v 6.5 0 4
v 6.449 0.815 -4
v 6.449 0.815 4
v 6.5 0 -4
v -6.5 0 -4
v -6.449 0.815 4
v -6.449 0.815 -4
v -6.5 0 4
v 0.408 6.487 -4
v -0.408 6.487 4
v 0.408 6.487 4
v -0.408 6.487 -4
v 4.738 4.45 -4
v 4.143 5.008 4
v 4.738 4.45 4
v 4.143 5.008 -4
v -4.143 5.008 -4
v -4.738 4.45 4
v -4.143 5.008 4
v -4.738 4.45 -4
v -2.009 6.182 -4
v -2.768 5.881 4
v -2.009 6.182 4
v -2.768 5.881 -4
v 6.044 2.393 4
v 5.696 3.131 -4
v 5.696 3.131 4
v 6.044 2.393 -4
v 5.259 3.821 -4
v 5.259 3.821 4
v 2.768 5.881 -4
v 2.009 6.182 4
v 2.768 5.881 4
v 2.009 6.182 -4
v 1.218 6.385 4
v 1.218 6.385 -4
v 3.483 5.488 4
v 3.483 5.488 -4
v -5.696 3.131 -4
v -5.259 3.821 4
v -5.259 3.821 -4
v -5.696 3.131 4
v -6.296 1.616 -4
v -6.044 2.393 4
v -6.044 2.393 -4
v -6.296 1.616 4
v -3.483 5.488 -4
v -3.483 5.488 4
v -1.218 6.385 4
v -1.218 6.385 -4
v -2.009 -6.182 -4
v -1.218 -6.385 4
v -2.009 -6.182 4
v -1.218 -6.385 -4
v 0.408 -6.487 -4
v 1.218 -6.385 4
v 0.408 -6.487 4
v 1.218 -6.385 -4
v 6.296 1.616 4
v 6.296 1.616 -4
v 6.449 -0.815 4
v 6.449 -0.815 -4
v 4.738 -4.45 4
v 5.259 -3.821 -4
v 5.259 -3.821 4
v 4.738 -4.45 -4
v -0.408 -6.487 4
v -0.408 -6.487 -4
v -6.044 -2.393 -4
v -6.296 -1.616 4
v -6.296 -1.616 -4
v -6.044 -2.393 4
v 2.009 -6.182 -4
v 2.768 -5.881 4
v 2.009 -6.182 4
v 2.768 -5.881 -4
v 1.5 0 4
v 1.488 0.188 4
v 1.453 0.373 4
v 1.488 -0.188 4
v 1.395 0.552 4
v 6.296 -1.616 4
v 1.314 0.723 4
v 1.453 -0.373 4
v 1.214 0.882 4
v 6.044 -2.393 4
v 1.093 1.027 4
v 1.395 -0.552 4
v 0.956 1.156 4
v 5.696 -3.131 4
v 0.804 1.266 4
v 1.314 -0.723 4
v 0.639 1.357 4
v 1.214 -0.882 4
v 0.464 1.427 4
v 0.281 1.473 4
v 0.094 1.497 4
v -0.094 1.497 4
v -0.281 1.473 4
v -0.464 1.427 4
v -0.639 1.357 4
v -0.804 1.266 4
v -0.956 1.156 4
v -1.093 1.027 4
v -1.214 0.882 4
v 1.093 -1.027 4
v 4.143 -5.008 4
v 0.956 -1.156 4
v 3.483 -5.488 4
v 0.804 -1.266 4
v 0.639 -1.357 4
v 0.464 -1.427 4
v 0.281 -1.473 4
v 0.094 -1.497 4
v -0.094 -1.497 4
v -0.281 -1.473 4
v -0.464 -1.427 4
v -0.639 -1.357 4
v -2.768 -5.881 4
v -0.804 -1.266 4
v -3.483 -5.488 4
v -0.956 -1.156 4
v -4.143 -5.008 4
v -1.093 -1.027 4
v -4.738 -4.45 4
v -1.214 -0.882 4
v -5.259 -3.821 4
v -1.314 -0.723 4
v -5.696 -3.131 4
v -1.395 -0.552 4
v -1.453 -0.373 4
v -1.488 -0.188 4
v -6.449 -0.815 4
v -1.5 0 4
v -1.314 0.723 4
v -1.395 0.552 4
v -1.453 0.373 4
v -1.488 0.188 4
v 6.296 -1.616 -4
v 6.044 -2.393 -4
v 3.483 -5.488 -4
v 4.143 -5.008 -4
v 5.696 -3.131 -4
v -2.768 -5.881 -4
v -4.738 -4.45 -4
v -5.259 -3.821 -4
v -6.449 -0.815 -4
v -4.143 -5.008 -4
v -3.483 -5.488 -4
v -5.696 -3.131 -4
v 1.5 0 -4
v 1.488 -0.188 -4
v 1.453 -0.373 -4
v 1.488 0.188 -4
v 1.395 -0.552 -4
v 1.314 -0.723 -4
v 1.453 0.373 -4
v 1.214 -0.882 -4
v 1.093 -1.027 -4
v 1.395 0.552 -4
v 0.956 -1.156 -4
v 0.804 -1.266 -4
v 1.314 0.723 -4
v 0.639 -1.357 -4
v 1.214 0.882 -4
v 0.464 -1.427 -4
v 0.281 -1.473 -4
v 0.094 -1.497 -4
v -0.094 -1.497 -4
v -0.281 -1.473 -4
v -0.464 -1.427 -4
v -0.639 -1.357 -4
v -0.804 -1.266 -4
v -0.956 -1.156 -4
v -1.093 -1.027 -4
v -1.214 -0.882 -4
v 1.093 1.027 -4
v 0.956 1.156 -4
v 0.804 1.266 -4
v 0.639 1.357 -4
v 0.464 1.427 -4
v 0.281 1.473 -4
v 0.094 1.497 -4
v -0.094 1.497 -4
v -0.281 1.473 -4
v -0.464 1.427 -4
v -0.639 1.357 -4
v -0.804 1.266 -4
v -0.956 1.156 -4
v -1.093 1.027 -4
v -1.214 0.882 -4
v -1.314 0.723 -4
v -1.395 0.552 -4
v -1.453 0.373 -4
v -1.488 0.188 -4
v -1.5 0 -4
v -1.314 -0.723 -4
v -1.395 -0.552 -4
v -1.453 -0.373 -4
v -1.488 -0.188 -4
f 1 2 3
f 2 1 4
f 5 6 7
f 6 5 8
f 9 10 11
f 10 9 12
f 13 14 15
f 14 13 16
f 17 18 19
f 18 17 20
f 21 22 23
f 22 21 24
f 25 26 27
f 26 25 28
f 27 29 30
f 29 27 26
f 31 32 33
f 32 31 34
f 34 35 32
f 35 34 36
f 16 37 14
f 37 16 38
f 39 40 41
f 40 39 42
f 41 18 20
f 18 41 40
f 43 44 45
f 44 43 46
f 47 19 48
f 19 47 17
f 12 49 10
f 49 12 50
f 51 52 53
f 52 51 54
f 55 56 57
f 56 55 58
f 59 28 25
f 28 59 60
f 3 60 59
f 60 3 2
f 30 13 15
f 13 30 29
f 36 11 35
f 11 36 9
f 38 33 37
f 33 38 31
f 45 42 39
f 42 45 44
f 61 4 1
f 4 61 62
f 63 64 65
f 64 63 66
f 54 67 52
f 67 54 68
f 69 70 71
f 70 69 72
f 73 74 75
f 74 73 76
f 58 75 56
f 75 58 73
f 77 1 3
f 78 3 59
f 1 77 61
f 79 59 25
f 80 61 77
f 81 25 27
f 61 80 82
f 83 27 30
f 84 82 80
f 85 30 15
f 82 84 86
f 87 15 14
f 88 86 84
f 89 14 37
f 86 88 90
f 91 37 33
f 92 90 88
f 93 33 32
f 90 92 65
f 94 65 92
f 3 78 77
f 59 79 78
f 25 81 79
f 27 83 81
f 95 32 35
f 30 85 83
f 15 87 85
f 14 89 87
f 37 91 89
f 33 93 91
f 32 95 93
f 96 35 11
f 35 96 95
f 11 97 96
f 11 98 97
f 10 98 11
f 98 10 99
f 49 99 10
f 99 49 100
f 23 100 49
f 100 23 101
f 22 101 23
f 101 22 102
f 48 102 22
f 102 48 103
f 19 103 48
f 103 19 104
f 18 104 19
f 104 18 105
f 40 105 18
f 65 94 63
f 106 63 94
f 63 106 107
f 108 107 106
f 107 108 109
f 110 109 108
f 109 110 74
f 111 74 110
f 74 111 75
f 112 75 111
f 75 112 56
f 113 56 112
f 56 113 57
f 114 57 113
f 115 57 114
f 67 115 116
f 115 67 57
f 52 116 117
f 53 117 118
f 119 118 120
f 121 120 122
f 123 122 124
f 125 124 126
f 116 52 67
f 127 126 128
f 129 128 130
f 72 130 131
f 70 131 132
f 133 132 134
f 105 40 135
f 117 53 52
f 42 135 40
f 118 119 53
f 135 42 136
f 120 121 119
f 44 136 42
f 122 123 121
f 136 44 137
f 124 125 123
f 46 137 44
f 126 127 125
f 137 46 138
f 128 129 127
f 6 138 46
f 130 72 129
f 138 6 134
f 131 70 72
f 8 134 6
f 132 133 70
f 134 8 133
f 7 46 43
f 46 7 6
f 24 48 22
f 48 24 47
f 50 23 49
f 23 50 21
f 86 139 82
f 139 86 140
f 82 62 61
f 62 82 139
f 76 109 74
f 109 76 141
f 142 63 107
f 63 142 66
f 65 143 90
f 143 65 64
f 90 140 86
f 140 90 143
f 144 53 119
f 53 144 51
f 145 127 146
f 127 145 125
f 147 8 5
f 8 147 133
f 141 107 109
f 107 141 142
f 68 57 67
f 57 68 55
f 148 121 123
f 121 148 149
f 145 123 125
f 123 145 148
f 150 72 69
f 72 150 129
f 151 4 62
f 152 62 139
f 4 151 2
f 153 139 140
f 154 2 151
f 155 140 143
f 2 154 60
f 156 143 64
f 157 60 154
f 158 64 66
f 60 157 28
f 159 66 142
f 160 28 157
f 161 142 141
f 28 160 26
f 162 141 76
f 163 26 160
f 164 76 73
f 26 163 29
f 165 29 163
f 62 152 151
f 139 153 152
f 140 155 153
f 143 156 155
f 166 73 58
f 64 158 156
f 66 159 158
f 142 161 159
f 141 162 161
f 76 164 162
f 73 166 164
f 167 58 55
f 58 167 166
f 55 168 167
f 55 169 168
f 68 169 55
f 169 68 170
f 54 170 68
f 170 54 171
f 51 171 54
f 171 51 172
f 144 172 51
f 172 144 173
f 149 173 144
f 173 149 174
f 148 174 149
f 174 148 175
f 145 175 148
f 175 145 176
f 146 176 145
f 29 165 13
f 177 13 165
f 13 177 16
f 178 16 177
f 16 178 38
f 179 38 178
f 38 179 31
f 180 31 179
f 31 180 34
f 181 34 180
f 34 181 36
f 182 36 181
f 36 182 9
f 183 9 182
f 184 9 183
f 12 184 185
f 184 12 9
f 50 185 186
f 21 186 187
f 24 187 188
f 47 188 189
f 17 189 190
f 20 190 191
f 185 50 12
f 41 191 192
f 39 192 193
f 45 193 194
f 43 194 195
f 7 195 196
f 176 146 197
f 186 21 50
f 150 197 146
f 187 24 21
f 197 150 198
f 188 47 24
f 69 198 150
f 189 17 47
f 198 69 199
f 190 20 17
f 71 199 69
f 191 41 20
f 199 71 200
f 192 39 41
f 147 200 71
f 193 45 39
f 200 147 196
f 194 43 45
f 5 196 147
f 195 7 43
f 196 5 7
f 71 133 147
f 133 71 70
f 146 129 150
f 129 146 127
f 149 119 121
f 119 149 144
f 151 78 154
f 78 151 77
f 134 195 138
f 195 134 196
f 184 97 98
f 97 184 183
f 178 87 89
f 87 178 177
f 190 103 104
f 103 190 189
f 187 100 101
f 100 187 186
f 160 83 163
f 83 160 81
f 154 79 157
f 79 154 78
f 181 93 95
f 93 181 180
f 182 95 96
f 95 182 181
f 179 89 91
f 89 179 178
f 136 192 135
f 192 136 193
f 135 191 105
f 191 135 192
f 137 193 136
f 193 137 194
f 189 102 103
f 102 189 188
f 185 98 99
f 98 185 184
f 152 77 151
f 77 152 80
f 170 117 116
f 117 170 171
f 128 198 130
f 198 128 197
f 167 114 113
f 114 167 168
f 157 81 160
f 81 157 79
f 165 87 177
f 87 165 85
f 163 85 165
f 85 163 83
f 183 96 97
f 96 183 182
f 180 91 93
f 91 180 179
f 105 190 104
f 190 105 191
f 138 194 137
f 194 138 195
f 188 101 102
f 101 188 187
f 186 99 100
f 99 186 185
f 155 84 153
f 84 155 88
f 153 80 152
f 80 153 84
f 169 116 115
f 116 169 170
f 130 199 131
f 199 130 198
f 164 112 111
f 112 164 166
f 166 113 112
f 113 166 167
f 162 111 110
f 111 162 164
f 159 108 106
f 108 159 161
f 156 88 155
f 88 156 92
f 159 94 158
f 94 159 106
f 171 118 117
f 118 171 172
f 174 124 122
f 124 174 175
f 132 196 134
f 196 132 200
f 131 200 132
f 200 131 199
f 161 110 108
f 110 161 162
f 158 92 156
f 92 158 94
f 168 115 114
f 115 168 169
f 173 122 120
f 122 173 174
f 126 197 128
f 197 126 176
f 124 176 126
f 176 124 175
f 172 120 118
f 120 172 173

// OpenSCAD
$fn = 50;


difference() {
	union() {
		translate(v = [0, 0, -4.0000000000]) {
			cylinder(h = 8, r = 6.5000000000);
		}
	}
	union() {
		translate(v = [0, 0, -100.0000000000]) {
			cylinder(h = 200, r = 1.5000000000);
		}
	}
}
